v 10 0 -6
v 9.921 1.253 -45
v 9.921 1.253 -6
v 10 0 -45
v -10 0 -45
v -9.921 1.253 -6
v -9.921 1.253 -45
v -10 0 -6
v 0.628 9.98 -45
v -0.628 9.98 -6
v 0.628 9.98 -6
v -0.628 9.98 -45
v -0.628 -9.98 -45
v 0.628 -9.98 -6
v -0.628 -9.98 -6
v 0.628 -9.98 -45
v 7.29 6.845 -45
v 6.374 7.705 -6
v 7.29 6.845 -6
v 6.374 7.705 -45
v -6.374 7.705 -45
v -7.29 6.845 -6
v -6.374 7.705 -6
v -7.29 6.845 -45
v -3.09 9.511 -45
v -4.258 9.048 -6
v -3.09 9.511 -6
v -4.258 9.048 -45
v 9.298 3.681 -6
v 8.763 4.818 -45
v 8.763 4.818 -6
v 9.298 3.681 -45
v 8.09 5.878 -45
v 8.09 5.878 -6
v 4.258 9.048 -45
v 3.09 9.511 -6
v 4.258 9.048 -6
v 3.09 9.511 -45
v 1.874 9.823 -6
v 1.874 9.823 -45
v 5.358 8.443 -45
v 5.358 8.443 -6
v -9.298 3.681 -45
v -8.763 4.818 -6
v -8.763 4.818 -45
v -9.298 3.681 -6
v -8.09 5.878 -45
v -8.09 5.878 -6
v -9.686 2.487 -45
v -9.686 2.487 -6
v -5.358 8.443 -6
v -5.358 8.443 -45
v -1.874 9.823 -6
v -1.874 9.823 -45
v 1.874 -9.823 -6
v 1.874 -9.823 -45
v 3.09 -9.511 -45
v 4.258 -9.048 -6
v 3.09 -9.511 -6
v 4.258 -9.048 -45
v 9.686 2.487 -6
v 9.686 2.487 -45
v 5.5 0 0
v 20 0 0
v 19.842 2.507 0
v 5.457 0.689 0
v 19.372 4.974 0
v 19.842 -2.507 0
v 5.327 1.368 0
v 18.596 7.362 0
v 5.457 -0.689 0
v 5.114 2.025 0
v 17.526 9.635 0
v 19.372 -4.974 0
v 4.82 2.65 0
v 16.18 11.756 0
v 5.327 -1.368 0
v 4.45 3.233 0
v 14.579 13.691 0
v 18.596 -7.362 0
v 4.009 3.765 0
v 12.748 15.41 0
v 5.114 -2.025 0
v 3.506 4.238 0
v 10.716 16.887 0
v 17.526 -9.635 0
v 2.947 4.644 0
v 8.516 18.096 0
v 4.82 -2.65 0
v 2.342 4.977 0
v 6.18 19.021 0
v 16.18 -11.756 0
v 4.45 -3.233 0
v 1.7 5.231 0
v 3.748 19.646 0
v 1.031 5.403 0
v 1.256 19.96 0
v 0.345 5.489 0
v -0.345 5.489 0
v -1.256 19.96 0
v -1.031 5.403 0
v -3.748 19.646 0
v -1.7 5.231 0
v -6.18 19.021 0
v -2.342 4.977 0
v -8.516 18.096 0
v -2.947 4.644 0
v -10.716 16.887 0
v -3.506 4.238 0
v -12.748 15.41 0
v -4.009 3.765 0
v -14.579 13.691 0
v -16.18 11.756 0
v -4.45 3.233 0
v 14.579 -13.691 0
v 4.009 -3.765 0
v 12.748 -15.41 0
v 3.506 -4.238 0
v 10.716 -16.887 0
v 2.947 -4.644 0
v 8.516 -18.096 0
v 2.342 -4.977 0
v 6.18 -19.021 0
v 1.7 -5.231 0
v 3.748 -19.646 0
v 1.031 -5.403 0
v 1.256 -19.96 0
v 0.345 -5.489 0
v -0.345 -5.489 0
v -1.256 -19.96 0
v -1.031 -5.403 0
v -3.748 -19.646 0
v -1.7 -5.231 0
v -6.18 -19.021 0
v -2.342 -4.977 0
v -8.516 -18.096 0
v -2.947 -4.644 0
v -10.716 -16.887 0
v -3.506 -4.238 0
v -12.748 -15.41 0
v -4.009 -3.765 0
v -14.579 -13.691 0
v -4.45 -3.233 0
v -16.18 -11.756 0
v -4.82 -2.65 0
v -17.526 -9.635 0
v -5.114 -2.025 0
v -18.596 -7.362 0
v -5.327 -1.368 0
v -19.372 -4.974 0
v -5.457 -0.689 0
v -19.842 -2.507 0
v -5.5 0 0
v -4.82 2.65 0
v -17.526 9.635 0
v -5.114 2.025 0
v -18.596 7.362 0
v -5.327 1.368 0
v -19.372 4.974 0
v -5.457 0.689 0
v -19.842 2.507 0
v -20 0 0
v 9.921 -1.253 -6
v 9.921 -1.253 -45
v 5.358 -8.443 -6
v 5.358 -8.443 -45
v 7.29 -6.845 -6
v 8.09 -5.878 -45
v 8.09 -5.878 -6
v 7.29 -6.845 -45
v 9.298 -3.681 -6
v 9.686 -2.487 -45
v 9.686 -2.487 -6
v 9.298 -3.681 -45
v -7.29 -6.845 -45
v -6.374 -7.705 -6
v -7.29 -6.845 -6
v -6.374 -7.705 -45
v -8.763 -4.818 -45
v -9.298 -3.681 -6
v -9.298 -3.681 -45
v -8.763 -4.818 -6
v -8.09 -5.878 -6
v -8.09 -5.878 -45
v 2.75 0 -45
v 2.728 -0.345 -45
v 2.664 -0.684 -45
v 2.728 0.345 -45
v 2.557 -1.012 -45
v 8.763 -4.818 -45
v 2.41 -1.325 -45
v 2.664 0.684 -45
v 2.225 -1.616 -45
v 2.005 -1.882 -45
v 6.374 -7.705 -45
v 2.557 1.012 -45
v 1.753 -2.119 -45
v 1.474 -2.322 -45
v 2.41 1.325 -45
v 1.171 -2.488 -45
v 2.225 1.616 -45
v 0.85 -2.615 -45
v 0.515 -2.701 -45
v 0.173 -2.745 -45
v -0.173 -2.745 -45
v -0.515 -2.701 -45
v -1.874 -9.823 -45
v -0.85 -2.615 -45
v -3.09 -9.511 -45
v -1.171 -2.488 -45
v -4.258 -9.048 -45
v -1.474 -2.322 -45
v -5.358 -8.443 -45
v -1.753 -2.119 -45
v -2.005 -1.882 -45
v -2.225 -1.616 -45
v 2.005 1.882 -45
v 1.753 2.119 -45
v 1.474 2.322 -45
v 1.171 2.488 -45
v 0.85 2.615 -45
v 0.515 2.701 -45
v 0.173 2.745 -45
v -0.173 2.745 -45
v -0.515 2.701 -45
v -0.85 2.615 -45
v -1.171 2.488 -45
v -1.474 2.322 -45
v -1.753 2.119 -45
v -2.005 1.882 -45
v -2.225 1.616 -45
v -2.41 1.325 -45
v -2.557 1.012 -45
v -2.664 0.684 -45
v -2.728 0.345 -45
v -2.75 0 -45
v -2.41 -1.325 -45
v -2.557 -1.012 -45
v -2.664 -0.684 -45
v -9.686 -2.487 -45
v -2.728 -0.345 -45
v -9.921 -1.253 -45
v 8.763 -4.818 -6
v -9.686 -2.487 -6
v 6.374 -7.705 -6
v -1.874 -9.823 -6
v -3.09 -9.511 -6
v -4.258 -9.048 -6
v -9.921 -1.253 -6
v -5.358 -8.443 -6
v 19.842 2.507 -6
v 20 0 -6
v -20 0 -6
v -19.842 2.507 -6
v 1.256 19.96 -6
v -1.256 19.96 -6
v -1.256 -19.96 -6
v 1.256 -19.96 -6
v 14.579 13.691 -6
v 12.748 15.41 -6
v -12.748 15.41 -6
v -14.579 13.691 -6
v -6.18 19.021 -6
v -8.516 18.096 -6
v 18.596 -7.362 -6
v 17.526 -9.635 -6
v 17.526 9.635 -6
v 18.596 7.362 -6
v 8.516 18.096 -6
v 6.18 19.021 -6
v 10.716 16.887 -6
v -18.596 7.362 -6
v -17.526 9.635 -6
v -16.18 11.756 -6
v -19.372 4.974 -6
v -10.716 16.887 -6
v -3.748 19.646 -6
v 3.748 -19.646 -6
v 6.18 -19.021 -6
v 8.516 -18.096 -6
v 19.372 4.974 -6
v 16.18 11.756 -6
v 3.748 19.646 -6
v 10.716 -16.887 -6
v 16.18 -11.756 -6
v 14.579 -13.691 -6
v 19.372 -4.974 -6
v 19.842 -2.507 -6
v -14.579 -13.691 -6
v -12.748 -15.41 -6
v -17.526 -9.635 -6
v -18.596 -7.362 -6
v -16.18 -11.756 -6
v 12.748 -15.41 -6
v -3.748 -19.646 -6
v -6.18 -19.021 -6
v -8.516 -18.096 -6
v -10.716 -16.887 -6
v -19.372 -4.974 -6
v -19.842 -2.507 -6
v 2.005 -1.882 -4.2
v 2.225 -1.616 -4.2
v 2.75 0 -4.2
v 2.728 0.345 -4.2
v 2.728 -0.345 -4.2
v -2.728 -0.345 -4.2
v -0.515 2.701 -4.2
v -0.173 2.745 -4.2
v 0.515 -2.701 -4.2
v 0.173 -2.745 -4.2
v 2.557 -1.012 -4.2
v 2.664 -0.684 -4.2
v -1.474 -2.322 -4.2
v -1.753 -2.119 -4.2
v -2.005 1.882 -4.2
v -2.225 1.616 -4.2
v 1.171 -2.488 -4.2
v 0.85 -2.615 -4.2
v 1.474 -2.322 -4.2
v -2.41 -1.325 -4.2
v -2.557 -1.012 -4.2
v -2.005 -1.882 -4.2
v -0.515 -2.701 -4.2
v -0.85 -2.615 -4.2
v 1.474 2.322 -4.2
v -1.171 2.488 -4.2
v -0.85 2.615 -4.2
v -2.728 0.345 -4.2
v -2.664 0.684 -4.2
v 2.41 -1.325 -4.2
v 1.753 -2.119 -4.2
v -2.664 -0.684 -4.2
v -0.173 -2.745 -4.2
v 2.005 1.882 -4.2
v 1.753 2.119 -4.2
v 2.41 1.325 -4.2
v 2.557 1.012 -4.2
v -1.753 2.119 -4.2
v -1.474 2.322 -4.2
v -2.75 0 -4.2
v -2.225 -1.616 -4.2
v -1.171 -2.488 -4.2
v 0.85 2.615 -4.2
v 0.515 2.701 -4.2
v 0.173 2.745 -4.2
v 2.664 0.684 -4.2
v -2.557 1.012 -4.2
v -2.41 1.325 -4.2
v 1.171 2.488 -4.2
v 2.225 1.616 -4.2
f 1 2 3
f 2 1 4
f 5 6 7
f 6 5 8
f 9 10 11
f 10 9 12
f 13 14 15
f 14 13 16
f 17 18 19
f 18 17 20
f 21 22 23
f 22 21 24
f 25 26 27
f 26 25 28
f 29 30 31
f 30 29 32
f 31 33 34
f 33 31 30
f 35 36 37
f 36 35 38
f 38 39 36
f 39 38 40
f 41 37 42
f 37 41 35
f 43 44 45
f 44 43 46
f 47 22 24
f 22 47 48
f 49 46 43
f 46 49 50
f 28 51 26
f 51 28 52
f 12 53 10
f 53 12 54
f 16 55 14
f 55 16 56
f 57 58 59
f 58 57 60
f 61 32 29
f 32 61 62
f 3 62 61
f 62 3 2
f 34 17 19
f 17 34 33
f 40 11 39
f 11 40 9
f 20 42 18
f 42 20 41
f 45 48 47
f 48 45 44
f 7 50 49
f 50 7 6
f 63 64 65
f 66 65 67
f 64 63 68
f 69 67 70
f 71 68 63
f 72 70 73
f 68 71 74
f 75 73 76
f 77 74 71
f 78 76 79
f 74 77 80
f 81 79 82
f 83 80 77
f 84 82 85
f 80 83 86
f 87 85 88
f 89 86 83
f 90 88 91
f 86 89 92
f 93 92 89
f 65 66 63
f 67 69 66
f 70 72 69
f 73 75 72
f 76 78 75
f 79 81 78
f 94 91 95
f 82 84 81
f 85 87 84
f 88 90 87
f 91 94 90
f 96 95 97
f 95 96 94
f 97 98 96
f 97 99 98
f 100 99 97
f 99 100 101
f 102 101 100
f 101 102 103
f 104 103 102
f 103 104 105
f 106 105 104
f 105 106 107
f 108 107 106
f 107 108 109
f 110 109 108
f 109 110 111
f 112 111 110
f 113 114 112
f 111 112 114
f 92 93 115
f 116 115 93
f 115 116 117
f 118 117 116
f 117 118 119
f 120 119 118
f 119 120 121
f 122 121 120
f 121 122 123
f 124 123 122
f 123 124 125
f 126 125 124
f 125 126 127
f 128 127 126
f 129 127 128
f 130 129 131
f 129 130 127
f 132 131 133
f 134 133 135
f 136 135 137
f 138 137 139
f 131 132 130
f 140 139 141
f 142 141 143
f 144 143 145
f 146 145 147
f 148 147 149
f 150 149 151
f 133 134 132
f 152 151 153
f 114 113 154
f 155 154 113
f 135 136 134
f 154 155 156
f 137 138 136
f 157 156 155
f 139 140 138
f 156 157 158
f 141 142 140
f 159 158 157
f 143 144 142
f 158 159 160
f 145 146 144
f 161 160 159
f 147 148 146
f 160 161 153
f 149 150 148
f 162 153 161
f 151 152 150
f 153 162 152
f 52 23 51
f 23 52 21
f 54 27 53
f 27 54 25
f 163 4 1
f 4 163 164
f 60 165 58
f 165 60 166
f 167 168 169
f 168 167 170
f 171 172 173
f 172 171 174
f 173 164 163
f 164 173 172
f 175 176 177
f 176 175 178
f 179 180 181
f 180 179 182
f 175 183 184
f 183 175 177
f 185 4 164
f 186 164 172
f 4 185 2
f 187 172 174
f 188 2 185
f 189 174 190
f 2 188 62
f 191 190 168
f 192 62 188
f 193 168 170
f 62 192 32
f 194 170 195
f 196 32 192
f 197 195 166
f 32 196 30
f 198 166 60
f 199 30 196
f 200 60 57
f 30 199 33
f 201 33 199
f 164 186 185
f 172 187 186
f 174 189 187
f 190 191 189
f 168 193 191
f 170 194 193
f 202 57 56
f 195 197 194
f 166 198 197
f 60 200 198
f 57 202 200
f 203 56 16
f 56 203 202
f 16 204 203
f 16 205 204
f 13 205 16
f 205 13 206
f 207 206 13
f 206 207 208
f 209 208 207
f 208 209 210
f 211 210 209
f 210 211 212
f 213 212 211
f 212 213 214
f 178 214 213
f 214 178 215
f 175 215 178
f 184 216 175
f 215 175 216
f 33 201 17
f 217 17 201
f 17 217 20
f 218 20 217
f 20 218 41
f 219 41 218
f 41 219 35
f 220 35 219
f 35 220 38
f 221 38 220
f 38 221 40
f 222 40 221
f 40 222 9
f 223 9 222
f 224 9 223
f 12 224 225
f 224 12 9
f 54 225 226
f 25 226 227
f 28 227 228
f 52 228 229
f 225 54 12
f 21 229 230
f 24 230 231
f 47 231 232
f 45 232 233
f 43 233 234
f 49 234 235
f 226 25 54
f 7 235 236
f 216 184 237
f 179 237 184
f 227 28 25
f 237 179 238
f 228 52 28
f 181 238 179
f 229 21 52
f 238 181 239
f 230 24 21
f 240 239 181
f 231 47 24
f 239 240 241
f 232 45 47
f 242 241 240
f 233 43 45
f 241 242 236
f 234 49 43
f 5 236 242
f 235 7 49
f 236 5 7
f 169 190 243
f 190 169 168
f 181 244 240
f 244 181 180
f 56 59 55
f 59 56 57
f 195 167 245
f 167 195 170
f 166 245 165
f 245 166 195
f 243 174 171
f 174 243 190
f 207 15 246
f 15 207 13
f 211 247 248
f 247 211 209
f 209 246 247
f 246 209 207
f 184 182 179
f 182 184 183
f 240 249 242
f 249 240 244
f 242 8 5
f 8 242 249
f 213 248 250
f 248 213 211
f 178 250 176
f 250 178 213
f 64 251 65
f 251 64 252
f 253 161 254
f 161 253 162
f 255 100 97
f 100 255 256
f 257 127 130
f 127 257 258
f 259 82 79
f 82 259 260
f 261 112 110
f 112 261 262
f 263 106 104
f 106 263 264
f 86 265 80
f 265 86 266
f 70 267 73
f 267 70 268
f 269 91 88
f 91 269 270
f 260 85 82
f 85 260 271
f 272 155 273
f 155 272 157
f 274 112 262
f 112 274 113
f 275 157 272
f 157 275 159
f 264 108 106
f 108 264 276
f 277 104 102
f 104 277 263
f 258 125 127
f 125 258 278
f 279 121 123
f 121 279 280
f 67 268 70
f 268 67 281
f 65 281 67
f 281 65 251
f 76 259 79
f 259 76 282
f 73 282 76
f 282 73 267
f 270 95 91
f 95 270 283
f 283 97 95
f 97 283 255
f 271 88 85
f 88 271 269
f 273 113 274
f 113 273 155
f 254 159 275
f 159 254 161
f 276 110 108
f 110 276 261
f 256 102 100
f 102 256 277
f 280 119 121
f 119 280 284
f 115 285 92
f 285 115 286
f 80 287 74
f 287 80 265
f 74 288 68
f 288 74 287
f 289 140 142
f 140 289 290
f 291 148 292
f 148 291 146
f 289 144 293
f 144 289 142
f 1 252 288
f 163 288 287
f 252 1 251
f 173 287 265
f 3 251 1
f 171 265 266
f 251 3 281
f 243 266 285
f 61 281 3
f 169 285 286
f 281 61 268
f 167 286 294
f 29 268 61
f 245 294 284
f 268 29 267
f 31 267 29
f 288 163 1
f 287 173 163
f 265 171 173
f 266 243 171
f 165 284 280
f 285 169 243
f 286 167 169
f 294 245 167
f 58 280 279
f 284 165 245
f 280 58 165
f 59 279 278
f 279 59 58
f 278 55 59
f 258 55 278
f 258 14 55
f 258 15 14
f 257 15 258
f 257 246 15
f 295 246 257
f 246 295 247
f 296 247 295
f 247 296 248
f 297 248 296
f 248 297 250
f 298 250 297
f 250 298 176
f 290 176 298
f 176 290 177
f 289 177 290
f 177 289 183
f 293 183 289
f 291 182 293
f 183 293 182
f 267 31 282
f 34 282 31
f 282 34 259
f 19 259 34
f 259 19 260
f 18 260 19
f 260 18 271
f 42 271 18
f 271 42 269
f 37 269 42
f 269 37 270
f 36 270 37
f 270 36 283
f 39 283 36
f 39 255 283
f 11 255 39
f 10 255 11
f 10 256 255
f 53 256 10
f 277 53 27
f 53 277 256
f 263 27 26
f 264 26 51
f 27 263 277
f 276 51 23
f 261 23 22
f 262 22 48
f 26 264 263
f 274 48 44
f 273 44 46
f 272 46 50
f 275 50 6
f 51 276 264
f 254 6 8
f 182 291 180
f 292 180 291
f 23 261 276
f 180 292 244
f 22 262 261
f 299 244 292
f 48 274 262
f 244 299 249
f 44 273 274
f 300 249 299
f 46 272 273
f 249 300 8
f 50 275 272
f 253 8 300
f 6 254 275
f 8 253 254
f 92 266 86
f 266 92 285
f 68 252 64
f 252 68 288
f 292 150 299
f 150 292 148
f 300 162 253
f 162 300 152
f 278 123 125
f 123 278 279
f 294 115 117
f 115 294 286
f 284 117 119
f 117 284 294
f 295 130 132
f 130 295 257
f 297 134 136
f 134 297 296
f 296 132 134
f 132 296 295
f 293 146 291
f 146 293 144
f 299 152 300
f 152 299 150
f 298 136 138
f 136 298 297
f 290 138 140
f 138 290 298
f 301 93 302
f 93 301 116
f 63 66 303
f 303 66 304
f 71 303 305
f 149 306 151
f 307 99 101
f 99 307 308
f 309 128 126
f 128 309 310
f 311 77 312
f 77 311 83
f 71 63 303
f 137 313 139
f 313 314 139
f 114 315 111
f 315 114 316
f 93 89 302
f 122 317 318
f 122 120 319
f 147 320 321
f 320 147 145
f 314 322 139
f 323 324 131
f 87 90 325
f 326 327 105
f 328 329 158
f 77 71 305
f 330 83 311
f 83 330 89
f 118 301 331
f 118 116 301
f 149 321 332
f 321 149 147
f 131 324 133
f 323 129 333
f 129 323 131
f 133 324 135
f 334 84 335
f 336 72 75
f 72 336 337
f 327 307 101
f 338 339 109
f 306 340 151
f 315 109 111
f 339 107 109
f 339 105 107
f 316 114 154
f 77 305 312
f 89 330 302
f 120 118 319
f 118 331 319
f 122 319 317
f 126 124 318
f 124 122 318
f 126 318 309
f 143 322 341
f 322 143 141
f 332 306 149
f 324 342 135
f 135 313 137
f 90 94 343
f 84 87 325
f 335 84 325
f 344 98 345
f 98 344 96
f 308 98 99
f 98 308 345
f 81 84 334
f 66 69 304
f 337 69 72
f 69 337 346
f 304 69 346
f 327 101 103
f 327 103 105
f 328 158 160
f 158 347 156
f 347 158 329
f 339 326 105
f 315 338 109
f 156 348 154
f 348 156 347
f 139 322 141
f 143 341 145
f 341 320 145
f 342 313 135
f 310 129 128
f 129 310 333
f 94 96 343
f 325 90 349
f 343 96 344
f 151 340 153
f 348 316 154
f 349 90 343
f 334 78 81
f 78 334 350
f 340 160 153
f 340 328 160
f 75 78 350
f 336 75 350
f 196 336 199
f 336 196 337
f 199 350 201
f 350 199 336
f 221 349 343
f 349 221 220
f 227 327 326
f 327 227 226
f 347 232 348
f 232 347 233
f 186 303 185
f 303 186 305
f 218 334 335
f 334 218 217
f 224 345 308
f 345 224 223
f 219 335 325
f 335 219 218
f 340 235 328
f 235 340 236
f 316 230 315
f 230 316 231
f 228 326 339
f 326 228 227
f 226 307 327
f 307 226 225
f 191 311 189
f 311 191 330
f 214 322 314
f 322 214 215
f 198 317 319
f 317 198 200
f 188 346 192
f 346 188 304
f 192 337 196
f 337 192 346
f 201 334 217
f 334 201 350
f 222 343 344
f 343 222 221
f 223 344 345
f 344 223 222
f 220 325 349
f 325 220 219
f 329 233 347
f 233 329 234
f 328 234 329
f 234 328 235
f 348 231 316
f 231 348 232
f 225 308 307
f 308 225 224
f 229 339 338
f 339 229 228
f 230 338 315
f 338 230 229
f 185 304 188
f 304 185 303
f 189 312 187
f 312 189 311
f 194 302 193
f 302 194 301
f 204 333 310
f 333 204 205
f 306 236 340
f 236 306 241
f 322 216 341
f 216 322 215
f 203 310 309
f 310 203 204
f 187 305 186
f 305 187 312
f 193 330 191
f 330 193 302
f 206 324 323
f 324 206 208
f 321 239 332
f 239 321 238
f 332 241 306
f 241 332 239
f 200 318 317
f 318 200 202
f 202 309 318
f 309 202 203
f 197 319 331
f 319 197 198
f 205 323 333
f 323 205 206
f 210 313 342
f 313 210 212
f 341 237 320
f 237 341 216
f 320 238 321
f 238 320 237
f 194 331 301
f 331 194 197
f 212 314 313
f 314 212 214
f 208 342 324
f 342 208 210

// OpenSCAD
$fn = 50;


difference() {
	union() {
		translate(v = [0, 0, -45.0000000000]) {
			cylinder(h = 45, r = 10.0000000000);
		}
		translate(v = [0, 0, -6.0000000000]) {
			cylinder(h = 6, r = 20.0000000000);
		}
	}
	union() {
		translate(v = [0, 0, 0]) {
			rotate(a = [0, 0, 0]) {
				difference() {
					union() {
						#translate(v = [0, 0, -45.0000000000]) {
							cylinder(h = 45, r = 2.2500000000);
						}
						#translate(v = [0, 0, -4.2000000000]) {
							cylinder(h = 4.2000000000, r = 10.0000000000, r1 = 2.7500000000, r2 = 5.5000000000);
						}
						#translate(v = [0, 0, -45.0000000000]) {
							cylinder(h = 45, r = 2.7500000000);
						}
						#translate(v = [0, 0, -45.0000000000]) {
							cylinder(h = 45, r = 2.2500000000);
						}
					}
					union();
				}
			}
		}
	}
}
